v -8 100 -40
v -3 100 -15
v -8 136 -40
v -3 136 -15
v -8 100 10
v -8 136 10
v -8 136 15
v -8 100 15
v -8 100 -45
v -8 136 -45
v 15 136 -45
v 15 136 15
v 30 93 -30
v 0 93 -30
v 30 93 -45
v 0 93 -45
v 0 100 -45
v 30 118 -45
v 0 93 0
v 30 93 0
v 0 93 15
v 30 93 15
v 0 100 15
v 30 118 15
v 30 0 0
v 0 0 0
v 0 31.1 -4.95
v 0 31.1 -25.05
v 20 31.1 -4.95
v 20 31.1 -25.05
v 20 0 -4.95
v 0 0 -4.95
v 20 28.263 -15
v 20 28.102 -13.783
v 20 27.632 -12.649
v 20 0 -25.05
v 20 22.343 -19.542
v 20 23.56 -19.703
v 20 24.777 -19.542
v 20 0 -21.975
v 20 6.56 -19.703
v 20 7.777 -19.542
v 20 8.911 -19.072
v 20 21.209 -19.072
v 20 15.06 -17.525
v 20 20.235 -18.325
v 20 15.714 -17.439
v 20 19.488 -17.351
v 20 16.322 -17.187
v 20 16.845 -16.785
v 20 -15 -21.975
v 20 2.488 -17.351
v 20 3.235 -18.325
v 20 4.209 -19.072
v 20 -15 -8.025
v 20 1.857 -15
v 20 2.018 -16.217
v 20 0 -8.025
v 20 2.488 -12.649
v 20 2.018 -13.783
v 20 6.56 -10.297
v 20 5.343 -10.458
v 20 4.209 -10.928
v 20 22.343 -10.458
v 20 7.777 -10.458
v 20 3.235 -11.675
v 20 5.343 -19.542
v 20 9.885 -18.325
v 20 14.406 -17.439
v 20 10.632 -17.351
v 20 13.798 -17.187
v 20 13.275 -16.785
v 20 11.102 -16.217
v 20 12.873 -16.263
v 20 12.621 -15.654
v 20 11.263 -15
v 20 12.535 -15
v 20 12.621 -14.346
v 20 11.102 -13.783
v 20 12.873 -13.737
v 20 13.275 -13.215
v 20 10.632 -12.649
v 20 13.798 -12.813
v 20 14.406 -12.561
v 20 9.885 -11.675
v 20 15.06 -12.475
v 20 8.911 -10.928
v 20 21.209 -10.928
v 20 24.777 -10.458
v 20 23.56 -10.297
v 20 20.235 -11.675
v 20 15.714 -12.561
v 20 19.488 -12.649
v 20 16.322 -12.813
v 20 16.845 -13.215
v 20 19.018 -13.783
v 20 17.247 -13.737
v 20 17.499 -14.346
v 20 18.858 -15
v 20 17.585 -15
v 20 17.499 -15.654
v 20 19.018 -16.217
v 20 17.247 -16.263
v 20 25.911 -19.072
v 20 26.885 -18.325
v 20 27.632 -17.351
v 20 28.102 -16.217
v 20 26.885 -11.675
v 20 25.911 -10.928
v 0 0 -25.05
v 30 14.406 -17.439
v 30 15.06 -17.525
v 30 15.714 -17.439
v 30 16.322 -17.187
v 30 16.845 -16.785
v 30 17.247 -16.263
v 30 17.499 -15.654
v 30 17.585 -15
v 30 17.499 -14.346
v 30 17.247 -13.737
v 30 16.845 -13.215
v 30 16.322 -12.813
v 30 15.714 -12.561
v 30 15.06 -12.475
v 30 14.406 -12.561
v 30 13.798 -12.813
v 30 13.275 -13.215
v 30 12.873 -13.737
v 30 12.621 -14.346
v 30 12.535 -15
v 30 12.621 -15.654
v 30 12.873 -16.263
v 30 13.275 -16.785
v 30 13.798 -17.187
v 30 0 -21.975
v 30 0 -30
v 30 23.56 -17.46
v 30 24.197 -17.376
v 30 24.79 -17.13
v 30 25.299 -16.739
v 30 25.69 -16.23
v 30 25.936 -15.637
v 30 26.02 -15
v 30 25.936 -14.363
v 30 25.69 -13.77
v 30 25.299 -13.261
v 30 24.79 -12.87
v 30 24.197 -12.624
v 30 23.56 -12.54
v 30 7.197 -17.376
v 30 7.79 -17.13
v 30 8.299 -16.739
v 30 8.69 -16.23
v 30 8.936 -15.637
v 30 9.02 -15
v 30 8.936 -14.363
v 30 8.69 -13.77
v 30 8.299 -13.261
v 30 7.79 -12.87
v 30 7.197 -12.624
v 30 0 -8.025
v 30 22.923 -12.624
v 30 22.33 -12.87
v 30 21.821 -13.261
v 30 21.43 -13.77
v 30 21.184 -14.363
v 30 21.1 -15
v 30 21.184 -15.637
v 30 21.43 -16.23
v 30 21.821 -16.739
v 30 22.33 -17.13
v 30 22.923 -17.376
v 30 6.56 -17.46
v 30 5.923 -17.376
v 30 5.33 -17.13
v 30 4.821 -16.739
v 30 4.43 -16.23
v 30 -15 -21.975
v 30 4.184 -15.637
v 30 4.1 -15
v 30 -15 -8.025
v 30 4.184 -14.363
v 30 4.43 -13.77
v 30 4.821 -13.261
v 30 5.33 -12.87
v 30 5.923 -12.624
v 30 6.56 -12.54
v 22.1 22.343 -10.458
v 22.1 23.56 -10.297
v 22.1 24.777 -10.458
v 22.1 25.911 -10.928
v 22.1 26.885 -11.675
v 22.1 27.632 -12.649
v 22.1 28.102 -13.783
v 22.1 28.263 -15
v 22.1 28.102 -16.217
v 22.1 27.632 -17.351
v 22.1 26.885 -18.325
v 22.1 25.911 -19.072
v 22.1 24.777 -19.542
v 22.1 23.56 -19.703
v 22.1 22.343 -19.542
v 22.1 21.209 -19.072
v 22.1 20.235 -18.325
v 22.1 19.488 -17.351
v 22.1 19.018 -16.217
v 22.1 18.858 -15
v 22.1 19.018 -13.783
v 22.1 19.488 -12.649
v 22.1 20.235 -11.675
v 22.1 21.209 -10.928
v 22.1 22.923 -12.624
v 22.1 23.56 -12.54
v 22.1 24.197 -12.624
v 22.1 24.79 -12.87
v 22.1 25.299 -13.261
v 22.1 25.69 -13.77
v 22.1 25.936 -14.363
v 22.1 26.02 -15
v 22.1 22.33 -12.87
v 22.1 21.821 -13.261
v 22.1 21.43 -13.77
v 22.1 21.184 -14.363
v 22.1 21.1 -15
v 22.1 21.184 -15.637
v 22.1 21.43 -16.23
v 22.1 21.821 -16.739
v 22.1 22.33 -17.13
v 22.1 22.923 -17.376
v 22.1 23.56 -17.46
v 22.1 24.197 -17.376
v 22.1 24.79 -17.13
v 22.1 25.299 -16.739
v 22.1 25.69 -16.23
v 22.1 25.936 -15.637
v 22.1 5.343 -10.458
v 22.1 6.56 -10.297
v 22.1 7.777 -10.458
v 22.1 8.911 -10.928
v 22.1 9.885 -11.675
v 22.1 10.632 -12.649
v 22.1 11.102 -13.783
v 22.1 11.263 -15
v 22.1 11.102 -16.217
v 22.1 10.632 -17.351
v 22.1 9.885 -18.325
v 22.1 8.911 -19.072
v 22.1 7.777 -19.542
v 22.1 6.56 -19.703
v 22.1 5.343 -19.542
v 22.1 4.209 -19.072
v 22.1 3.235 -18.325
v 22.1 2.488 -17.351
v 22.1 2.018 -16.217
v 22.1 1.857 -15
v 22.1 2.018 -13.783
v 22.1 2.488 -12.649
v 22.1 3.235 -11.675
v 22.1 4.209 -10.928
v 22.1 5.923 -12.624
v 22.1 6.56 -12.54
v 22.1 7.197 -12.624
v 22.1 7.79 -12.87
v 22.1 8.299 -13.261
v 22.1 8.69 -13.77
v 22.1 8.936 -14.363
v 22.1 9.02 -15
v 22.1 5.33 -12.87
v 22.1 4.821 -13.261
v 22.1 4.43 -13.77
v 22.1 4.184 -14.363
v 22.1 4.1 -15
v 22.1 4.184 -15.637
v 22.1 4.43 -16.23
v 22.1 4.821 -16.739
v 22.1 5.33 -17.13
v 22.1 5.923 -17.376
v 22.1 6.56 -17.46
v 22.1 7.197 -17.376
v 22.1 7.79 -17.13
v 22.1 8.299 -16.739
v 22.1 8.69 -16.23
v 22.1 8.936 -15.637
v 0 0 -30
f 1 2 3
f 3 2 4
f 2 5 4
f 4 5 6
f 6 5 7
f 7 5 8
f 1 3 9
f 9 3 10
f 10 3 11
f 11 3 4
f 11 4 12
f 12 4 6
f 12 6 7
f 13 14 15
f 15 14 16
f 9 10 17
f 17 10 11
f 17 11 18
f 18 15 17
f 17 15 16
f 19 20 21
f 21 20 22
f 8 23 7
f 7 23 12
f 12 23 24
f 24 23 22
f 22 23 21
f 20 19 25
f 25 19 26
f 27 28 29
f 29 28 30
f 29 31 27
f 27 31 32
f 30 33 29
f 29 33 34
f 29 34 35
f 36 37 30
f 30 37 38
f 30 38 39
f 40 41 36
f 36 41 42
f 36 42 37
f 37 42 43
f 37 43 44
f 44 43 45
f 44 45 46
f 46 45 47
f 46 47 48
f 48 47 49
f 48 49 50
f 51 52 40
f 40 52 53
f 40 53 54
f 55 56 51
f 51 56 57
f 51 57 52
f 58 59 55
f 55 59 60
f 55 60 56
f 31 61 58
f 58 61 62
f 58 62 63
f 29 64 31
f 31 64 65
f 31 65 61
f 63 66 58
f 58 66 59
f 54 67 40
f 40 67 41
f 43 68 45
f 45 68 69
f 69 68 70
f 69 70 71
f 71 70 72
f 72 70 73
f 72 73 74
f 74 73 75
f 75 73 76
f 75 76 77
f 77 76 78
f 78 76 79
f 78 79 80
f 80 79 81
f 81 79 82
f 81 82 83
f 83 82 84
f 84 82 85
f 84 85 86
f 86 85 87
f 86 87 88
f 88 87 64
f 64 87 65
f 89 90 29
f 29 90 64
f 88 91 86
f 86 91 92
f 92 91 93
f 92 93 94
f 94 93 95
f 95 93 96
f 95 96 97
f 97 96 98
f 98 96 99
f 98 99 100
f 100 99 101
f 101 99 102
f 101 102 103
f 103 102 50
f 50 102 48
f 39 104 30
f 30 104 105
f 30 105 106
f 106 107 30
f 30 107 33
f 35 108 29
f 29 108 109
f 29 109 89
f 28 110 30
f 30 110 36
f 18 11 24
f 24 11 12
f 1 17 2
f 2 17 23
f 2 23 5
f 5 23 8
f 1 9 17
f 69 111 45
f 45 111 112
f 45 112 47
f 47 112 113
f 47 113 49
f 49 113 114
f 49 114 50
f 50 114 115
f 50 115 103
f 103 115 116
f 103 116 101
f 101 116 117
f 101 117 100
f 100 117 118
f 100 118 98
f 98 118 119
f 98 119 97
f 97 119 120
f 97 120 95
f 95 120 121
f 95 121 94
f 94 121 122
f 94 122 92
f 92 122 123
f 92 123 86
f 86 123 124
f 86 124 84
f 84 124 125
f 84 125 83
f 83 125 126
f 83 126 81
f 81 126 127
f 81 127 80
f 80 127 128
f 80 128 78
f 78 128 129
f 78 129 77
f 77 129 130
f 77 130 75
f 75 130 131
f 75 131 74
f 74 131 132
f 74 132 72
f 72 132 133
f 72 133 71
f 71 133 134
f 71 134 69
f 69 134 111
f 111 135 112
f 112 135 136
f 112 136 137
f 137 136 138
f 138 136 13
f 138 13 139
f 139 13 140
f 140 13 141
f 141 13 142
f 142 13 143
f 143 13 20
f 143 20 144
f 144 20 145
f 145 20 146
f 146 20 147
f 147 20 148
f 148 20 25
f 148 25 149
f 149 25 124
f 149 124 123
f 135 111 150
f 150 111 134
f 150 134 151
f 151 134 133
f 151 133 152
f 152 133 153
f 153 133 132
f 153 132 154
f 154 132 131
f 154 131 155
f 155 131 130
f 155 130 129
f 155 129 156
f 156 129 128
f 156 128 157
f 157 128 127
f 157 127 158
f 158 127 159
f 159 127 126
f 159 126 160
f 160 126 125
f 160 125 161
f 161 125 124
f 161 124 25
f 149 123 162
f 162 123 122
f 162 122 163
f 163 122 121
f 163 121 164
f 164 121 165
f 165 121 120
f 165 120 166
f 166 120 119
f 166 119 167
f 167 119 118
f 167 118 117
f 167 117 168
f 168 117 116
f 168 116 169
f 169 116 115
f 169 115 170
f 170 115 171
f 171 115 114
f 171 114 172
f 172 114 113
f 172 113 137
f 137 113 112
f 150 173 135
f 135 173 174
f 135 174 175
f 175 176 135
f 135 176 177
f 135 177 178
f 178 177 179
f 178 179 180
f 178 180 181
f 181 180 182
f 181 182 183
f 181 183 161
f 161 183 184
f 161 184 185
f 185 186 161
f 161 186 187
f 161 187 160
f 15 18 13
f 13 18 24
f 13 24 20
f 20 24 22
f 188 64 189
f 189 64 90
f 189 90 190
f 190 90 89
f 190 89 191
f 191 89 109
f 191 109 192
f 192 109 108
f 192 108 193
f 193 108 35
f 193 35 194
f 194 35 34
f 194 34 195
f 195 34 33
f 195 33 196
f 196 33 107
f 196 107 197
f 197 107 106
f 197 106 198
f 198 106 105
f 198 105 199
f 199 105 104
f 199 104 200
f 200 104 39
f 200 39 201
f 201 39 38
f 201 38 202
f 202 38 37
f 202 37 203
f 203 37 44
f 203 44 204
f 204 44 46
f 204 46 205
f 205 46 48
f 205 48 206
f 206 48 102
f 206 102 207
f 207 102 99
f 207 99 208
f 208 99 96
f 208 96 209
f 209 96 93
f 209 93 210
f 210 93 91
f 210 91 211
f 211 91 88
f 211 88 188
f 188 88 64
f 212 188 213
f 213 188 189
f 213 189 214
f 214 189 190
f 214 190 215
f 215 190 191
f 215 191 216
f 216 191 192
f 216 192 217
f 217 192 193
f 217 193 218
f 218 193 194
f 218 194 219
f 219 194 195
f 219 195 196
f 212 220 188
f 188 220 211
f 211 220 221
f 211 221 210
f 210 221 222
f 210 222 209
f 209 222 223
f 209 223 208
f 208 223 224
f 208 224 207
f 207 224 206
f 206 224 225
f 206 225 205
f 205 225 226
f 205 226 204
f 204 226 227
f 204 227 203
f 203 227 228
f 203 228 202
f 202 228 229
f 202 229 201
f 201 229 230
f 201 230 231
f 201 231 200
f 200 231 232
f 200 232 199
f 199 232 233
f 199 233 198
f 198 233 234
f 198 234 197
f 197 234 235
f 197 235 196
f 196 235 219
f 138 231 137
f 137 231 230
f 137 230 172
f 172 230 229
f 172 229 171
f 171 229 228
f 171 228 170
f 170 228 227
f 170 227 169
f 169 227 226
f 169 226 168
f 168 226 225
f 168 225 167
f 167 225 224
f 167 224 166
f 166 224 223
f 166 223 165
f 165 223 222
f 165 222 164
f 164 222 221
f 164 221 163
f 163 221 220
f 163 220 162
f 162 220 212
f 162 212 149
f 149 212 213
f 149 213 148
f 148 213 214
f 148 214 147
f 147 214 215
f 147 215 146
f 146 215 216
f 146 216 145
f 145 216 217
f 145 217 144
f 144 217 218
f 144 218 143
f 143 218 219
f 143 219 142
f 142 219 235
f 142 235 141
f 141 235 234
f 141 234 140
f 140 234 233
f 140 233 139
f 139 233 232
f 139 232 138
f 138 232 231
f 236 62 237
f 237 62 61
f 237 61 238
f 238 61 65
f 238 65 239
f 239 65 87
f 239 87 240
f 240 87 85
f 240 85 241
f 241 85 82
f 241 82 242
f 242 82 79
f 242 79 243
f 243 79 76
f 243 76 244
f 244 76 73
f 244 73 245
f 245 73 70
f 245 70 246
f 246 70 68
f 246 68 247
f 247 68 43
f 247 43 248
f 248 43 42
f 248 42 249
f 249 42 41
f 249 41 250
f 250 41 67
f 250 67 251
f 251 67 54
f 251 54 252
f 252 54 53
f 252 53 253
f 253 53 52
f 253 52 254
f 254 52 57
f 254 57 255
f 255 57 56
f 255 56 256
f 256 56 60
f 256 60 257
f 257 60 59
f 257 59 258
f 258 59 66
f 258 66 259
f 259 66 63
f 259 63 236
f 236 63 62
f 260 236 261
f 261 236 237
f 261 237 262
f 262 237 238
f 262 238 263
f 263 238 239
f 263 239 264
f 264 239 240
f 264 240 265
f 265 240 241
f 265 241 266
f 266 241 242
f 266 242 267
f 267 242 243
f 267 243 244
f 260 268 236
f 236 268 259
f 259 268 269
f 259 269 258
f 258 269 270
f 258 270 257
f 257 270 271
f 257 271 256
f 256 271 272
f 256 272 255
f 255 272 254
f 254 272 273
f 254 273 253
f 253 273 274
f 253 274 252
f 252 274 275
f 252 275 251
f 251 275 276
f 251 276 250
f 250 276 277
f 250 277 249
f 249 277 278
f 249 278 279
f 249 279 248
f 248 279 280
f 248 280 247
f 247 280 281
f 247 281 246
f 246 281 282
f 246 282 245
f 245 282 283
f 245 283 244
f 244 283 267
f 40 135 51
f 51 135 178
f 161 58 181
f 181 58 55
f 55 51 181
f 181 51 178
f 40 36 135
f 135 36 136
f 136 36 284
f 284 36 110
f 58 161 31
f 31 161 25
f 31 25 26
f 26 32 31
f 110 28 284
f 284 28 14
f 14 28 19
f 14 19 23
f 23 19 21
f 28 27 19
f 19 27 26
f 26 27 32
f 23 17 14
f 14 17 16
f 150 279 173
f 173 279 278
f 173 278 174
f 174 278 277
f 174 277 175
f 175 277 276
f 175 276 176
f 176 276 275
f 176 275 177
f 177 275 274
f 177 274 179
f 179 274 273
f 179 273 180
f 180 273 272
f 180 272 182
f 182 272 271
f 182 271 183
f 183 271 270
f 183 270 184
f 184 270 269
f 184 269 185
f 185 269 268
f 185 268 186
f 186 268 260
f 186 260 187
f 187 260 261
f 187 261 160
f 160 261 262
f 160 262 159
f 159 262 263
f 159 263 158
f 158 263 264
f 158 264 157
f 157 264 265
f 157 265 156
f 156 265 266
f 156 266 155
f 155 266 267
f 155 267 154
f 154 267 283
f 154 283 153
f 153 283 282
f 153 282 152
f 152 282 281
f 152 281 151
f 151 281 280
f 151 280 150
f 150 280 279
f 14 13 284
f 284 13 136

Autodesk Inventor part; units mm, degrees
ref_plane "YZ Plane" through (0, 0, 0) normal (1, 0, 0) x (0, 1, 0)
ref_plane "XZ Plane" through (0, 0, 0) normal (0, 1, 0) x (-1, 0, 0)
sketch "Sketch1" plane through (0, 0, 0) normal (0, 0, 1) x (1, 0, 0)
  line L0 (0, 0) -> (25, 0)
  line L1 (25, 0) -> (25, 40)
  line L2 (25, 40) -> (0, 40)
  line L3 (0, 40) -> (0, 0)
  dimension "d1" = 25
  dimension "d2" = 40
  dimension "d3" = 25
extrude "Extrusion1" add sketch "Sketch1" against normal blind 30
sketch "Sketch2" plane through (25, 0, 0) normal (1, 0, 0) x (0, 0, -1)
  line L0 (0, 0) -> (30, 0) projected
  circle A0 centre (15, 6.56) radius 2.46
extrude "Extrusion2" cut sketch "Sketch2" against normal blind 30
sketch "Sketch3" plane through (0, 0, 0) normal (-1, 0, 0) x (0, 0, 1)
  line L0 (0, 0) -> (-30, 0) projected
  line L1 (-25.05, 0) -> (-4.95, 0)
  line L2 (-4.95, 0) -> (-4.95, 33.12)
  line L3 (-4.95, 33.12) -> (-25.05, 33.12)
  line L4 (-25.05, 33.12) -> (-25.05, 0)
  dimension "d11" = 20.1
extrude "Extrusion3" cut sketch "Sketch3" against normal blind 20
sketch "Sketch4" plane through (0, 0, 0) normal (0, -1, 0) x (1, 0, 0)
  line L0 (20, -4.95) -> (20, -25.05) projected
  line L1 (20, -15) -> (25, -15)
  line L2 (25, 0) -> (25, -30) projected
  line L3 (20, -8.025) -> (25, -8.025)
  line L4 (25, -8.025) -> (25, -21.975)
  line L5 (25, -21.975) -> (20, -21.975)
  line L6 (20, -21.975) -> (20, -8.025)
  line L7 (20, -8.025) -> (25, -21.975) construction
  line L8 (25, -8.025) -> (20, -21.975) construction
  line L9 (25, -12.54) -> (25, -17.46) projected
  point P0 (0, 0)
  point P1 (22.5, -15)
  dimension "d14" = 13.95
extrude "Extrusion4" add sketch "Sketch4" along normal blind 15
sketch "Sketch5" plane through (20, 0, 0) normal (-1, 0, 0) x (0, 0, 1)
  circle A0 centre (-15, 6.56) radius 2.46 projected
  circle A1 centre (-15, 6.56) radius 4.7025
  circle A2 centre (-15, 6.56) radius 2.46 projected
  circle A3 centre (-15, 6.56) radius 2.46
  point P0 (0, 0)
  dimension "d17" = 9.405
extrude "Extrusion5" cut sketch "Sketch5" against normal blind 2.1
sketch "Sketch6" plane through (25, 0, 0) normal (1, 0, 0) x (0, 0, -1)
  circle A0 centre (15, 6.56) radius 4.7025 projected
  line L0 (15, 6.56) -> (15, 23.56)
  circle A1 centre (15, 23.56) radius 2.46
  point P0 (0, 0)
  dimension "d20" = 17
  dimension "d21" = 4.92
extrude "Extrusion6" cut sketch "Sketch6" against normal blind 10 contours A1
sketch "Sketch7" plane through (20, 0, 0) normal (-1, 0, 0) x (0, 0, 1)
  circle A0 centre (-15, 23.56) radius 2.46 projected
  circle A1 centre (-15, 23.56) radius 4.7025
  point P0 (0, 0)
  dimension "d24" = 9.405
extrude "Extrusion7" cut sketch "Sketch7" against normal blind 2.1
sketch "Sketch9" plane through (25, 0, 0) normal (1, 0, 0) x (0, 0, -1)
  circle A0 centre (15, 6.56) radius 2.46 projected
  circle A1 centre (15, 6.56) radius 2.46
  circle A2 centre (15, 23.56) radius 2.46 projected
  circle A3 centre (15, 23.56) radius 2.46
  line L0 (30, 40) -> (30, 0) projected
  line L1 (30, 0) -> (30, 40)
  line L2 (30, 40) -> (0, 40)
  line L3 (0, 40) -> (0, 0)
  line L4 (0, 0) -> (8.025, 0) projected
  line L5 (21.975, 0) -> (21.975, -15)
  line L6 (21.975, -15) -> (8.025, -15)
  line L7 (8.025, -15) -> (8.025, 0)
  line L8 (0, 0) -> (8.025, 0)
  line L9 (21.975, 0) -> (30, 0)
extrude "Extrusion8" add sketch "Sketch9" along normal blind 5
sketch "Sketch10" plane through (0, 40, 0) normal (0, 1, 0) x (1, 0, 0)
  line L0 (0, 30) -> (30, 30) projected
  line L1 (30, 0) -> (0, 0) projected
  line L2 (0, 30) -> (30, 30)
  line L3 (30, 30) -> (30, 0)
  line L4 (30, 0) -> (0, 0)
  line L5 (0, 0) -> (0, 30)
extrude "Extrusion9" add sketch "Sketch10" along normal blind 30
sketch "Sketch12" plane through (30, 0, 0) normal (1, 0, 0) x (0, 0, -1)
  circle A0 centre (15, 6.56) radius 2.46 projected
  line L0 (15, 6.56) -> (15, 15.06)
  circle A1 centre (15, 15.06) radius 2.525
  point P0 (0, 0)
  dimension "d31" = 8.5
  dimension "d33" = 5.05
extrude "Extrusion10" cut sketch "Sketch12" against normal blind 30 contours A1
sketch "Sketch14" plane through (0, 0, 0) normal (0, 0, 1) x (1, 0, 0)
  line L0 (30, 70) -> (0, 70) projected
  line L1 (0, 100) -> (-8, 100)
  line L2 (30, 0) -> (30, 70) projected
  line L3 (30, 118) -> (30, 70)
  line L4 (30, 105) -> (30, 100)
  line L5 (0, 70) -> (30, 70) projected
  line L6 (0, 70) -> (0, 100)
  line L7 (15, 136) -> (30, 118)
  line L8 (-8, 136) -> (15, 136)
  line L9 (-8, 100) -> (-8, 136)
  point P0 (0, 0)
  dimension "d47" = 30
extrude "Extrusion12" add sketch "Sketch14" against normal blind 30
sketch "Sketch15" plane through (0, 0, -25.05) normal (-1, 0, 0) x (0, 0, 1)
  line L0 (0, 33.12) -> (20.1, 33.12) projected
  line L1 (20.1, 33.12) -> (20.1, 0) projected
  line L2 (0, 33.12) -> (20.1, 33.12)
  line L3 (20.1, 33.12) -> (20.1, 31.1)
  line L4 (20.1, 31.1) -> (0, 31.1)
  line L5 (0, 31.1) -> (0, 33.12)
  point P0 (25.05, 0)
  dimension "d57" = 2.02
extrude "Extrusion13" add sketch "Sketch15" against normal blind 20
sketch "Sketch23" plane through (0, 0, 0) normal (0, 0, 1) x (1, 0, 0)
  line L0 (0, 100) -> (-8, 100) projected
  line L1 (-8, 136) -> (15, 136) projected
  line L2 (-8, 136) -> (15, 136)
  line L3 (30, 118) -> (15, 136) projected
  line L4 (15, 136) -> (30, 118)
  line L5 (30, 118) -> (30, 93)
  line L6 (30, 0) -> (30, 118) projected
  line L7 (30, 93) -> (0, 93)
  line L8 (0, 93) -> (0, 100)
  line L9 (-8, 100) -> (0, 100)
  line L10 (15, 136) -> (-8, 136) projected
  line L11 (-8, 136) -> (-8, 100)
  point P0 (0, 0)
  point P1 (-2, 102)
  point P2 (4, 118)
  point P3 (-2, 134)
  dimension "d85" = 25
extrude "Extrusion14" add sketch "Sketch23" along normal blind 15
ref_plane "Work Plane1" through (0, 0, -15) normal (0, 0, 1) x (1, 0, 0)
mirror "Mirror1" about plane through (0, 0, -15) normal (0, 0, 1) of "Extrusion14"
sketch "Sketch28" plane through (-8, 136, 15) normal (0, 1, 0) x (1, 0, 0)
  line L0 (0, 60) -> (0, 0) projected
  line L1 (0, 30) -> (0, 5)
  line L2 (0, 5) -> (5, 5)
  line L3 (5, 5) -> (5, 55)
  line L4 (5, 55) -> (0, 55)
  line L5 (0, 55) -> (0, 30)
  line L6 (0, 55) -> (5, 30)
  line L7 (5, 30) -> (0, 5)
  point P0 (8, 15)
  dimension "d100" = 25
  dimension "d101" = 5
  dimension "d102" = 50
extrude "Extrusion17" cut sketch "Sketch28" against normal through all contours L6 L7 L0
properties part number "orien_b_45mm"
